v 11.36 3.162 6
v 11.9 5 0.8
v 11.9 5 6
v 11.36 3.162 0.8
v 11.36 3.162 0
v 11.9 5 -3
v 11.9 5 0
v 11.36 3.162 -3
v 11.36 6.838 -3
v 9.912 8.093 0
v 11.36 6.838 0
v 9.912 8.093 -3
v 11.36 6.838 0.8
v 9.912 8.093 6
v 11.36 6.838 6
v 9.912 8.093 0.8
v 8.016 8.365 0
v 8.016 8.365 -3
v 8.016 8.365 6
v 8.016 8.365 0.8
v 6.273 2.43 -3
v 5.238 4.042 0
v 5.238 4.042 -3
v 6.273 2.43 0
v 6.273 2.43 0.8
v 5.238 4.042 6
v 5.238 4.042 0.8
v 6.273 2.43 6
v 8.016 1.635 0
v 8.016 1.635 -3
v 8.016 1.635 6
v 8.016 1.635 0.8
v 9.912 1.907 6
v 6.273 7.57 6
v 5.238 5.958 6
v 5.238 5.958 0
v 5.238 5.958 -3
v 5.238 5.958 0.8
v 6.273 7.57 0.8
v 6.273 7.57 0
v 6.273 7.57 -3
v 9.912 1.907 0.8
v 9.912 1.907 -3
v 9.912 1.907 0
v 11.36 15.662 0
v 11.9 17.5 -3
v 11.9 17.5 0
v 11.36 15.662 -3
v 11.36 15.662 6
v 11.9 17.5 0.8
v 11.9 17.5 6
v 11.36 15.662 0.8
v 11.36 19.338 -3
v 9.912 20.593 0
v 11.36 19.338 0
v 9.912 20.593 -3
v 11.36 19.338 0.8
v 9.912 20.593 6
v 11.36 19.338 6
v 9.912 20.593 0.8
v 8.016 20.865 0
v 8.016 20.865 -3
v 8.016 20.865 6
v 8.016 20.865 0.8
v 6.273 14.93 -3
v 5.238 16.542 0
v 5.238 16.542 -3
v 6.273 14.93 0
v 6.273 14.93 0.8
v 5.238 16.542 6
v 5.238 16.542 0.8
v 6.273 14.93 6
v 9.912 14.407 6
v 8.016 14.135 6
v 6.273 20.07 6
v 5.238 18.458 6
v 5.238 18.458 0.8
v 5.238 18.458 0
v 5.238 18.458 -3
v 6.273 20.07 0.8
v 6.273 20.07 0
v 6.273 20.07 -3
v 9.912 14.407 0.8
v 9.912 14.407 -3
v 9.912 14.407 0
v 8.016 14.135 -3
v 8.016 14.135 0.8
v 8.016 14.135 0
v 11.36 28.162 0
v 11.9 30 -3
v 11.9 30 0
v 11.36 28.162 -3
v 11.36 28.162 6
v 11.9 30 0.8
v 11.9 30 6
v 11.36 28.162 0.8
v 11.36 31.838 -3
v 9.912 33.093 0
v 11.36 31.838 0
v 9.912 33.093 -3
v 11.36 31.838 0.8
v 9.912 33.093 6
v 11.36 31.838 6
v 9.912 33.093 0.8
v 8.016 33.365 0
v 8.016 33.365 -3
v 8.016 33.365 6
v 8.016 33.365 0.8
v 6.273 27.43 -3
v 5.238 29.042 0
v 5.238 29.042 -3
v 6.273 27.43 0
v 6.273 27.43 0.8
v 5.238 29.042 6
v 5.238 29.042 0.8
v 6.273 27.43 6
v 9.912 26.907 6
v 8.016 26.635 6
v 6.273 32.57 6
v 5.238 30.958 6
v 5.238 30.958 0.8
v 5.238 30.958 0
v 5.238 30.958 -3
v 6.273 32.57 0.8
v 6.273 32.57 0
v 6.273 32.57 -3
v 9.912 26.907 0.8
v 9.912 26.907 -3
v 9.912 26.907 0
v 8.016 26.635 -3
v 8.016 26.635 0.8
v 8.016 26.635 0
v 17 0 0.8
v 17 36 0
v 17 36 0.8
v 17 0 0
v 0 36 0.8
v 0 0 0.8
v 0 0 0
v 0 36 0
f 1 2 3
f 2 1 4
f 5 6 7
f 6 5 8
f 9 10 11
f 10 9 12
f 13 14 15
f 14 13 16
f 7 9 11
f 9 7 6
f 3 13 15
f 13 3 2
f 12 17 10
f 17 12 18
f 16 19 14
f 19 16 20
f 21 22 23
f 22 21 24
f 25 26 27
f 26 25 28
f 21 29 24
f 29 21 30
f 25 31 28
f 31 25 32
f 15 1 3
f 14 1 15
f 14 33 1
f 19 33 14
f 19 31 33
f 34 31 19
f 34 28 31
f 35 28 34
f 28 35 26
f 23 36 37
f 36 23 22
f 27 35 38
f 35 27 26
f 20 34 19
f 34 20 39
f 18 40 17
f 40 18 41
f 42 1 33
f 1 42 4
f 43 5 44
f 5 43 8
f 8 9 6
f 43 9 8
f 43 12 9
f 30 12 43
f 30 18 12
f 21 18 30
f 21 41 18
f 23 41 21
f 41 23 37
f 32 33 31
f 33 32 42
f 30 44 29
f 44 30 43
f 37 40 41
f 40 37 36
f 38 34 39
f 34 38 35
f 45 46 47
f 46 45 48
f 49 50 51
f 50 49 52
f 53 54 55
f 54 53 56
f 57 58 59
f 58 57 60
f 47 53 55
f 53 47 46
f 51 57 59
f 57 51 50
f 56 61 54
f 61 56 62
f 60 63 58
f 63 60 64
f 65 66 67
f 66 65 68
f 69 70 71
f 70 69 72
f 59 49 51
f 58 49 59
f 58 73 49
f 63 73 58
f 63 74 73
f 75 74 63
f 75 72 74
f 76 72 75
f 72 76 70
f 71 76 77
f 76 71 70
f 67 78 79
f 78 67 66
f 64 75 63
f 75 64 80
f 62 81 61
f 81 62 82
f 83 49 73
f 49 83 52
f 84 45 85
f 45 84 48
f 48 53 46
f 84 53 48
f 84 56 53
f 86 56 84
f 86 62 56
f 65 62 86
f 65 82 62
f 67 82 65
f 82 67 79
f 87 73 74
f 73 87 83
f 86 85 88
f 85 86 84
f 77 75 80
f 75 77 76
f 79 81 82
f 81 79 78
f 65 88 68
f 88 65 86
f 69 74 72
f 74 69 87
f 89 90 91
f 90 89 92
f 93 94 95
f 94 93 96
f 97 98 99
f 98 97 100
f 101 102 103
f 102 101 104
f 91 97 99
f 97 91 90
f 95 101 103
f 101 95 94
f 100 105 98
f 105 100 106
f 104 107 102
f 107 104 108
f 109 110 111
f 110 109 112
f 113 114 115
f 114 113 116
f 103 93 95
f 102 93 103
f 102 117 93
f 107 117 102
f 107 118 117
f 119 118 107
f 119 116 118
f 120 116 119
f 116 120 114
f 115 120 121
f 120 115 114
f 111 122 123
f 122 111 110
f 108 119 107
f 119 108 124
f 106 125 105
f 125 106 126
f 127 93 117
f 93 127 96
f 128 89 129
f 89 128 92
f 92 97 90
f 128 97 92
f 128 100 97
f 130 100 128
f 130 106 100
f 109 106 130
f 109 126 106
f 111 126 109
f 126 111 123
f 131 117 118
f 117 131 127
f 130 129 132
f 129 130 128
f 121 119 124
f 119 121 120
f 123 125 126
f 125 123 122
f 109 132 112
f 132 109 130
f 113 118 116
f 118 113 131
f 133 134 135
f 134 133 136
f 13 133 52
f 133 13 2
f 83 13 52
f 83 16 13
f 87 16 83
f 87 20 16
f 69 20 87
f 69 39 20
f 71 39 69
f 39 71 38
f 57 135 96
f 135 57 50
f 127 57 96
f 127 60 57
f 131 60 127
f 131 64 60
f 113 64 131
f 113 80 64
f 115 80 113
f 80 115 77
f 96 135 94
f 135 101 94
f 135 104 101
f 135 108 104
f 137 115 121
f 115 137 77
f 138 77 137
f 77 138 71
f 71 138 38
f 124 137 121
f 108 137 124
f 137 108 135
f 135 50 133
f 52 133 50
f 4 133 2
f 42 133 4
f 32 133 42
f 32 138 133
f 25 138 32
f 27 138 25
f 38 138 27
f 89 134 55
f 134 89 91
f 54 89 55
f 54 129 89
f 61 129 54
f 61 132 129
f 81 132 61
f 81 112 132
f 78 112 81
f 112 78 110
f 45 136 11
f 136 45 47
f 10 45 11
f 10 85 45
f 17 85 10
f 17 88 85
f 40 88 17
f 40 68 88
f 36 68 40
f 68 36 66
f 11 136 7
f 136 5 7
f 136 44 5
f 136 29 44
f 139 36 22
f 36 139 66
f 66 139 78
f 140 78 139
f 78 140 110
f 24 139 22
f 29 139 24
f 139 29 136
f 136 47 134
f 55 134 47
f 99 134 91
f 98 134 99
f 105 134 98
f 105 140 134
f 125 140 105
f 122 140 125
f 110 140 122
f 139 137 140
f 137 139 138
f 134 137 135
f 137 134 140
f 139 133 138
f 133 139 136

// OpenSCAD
translate([8.5, 5, -3]) cylinder(h=9, r1=3.4, r2=3.4);
translate([8.5, 17.5, -3]) cylinder(h=9, r1=3.4, r2=3.4);
translate([8.5, 30, -3]) cylinder(h=9, r1=3.4, r2=3.4);
cube([17, 36, 0.8], false);
